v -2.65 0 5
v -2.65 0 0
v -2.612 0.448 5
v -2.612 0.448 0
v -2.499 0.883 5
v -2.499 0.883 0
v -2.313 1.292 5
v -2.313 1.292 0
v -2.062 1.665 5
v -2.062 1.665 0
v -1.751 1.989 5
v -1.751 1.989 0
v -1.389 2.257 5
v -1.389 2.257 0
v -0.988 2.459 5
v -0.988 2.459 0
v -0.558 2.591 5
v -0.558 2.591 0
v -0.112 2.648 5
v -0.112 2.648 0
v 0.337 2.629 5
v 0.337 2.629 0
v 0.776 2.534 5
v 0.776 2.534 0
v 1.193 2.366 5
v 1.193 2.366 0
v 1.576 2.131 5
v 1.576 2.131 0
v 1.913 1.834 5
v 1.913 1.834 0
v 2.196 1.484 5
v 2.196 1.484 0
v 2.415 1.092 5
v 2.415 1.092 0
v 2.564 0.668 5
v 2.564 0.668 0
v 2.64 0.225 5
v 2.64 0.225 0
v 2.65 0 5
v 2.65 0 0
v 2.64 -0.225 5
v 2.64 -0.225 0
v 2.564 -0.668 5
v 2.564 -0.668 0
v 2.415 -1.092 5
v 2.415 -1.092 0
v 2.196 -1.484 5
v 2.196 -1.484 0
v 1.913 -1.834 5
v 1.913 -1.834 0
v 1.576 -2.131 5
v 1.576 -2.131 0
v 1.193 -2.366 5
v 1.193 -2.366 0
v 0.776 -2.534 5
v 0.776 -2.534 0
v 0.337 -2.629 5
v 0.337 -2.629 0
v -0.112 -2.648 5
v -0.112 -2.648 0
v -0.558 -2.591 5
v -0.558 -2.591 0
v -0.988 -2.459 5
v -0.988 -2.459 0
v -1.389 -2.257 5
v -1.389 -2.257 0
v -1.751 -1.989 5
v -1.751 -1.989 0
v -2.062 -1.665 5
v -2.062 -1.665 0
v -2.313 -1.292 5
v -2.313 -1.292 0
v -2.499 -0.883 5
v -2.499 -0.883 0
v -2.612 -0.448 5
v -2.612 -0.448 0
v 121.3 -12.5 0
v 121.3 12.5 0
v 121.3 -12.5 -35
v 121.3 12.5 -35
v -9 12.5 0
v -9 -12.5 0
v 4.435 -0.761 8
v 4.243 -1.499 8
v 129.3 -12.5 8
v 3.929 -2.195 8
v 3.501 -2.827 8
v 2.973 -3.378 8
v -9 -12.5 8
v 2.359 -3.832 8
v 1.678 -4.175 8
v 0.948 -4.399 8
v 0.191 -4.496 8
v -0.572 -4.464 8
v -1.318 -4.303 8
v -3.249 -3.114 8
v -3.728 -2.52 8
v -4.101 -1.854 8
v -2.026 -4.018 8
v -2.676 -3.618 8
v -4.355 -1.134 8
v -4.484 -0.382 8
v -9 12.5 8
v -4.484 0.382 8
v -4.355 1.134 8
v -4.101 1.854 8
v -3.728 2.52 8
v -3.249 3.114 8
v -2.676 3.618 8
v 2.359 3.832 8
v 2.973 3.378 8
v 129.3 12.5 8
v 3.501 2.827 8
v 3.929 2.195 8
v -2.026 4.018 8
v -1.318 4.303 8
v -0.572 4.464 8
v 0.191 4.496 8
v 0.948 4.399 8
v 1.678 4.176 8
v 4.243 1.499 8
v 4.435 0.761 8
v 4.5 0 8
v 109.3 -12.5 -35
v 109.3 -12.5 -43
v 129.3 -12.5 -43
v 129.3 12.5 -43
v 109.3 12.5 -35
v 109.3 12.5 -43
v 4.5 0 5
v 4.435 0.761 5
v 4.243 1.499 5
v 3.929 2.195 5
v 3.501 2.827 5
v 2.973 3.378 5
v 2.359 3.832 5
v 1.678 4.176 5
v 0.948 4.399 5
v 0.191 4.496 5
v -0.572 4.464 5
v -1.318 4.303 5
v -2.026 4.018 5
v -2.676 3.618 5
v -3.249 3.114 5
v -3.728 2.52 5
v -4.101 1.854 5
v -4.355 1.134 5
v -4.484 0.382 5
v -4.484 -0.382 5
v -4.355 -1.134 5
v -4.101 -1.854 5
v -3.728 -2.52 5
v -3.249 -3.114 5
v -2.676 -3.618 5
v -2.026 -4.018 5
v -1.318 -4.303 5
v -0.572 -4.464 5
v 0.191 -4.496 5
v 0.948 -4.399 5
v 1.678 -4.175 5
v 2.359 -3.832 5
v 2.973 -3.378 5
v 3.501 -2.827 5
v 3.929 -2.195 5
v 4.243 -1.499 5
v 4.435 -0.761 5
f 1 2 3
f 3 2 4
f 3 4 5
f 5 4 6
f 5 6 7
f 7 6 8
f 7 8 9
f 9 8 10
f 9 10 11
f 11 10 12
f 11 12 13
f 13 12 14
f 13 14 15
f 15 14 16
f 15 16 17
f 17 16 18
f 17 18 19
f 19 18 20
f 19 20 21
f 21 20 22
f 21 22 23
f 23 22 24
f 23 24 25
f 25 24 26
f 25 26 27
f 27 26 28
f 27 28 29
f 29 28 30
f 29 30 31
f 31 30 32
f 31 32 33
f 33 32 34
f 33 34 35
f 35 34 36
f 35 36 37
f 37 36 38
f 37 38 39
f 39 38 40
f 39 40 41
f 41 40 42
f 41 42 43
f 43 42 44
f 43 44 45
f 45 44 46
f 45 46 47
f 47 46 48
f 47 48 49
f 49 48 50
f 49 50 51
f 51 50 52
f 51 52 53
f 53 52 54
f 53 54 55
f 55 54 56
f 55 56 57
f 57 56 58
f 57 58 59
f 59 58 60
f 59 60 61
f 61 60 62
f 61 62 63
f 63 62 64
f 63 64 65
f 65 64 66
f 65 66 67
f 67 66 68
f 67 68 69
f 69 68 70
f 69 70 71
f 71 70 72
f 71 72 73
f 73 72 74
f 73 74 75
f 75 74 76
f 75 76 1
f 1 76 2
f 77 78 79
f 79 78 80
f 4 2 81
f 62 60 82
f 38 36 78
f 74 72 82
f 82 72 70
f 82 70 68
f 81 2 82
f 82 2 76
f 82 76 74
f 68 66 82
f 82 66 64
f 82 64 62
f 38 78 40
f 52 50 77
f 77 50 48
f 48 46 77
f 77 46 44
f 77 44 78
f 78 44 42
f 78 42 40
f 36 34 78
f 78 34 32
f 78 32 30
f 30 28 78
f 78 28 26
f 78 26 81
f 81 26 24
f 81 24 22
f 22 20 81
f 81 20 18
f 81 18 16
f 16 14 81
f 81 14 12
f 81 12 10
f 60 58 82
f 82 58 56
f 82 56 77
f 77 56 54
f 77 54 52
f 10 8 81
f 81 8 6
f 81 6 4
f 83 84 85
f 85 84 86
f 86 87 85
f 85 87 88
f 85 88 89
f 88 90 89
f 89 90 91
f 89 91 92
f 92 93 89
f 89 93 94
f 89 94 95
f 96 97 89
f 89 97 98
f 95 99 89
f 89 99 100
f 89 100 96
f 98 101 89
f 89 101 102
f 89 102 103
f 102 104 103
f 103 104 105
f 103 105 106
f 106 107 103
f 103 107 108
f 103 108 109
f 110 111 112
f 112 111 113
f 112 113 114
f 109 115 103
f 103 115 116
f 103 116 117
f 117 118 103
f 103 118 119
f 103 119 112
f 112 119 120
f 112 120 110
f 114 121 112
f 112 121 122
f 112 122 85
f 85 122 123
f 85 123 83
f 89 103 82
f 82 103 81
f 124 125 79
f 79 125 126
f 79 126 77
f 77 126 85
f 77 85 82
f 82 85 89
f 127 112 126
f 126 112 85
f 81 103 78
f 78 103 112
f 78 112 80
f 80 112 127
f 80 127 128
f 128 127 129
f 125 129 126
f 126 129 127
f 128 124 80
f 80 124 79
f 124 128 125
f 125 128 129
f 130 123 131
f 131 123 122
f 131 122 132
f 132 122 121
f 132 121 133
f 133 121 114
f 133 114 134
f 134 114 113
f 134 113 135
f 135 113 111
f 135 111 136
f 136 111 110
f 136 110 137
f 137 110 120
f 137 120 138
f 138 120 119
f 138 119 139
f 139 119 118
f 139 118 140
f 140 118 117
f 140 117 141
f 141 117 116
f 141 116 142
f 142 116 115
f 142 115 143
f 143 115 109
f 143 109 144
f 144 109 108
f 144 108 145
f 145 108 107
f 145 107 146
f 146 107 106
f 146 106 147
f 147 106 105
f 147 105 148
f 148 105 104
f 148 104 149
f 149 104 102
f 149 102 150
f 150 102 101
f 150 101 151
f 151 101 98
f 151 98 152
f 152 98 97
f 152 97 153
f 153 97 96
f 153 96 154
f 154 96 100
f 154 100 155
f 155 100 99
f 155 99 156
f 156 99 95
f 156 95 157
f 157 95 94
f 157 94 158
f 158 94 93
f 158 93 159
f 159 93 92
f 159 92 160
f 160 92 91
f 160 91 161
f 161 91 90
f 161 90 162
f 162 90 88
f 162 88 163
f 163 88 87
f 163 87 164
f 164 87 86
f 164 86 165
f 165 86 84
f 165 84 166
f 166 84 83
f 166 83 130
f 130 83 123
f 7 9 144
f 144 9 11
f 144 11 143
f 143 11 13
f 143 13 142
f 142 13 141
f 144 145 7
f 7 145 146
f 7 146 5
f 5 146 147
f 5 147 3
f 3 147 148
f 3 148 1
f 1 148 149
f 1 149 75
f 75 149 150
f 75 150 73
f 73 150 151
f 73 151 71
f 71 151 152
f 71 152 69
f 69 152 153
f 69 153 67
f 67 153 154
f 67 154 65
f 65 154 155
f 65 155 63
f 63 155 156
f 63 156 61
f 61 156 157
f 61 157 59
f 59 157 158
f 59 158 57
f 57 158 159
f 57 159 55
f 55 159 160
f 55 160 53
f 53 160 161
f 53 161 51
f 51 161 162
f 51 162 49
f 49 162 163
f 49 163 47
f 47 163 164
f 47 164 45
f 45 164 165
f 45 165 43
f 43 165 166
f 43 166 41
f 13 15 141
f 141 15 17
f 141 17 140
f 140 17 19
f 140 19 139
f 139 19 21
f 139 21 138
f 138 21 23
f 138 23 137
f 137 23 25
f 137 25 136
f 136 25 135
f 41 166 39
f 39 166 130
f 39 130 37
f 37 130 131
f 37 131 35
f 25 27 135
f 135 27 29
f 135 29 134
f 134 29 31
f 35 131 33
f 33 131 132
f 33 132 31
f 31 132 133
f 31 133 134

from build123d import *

# Parameters (mm, degrees)
SKETCH_1_R          = 2.65
EXTRUDE_1_DEPTH     = 8
SKETCH_7_W          = 8
SKETCH_7_H          = 25
EXTRUDE_2_DEPTH     = 43
SKETCH_8_W          = 8
SKETCH_8_H          = 25
EXTRUDE_3_DEPTH     = 12
SKETCH_9_R          = 4.5
CUT_EXTRUDE_1_DEPTH = 3


with BuildPart() as part:
    # 草图1 → 凸台-拉伸1 (new body)
    with BuildSketch(Plane.XY):
        Polygon((-8, 12.5), (129.3, 12.5), (129.3, -12.5), (-8, -12.5), (-9, -12.5), (-9, 12.5), align=None)
        Circle(SKETCH_1_R, mode=Mode.SUBTRACT)
    extrude(amount=EXTRUDE_1_DEPTH)

    # 草图7 → 凸台-拉伸2 (add)
    with BuildSketch(Plane(origin=(0, 0, 0), x_dir=(-1, 0, 0), z_dir=(0, 0, -1))):
        with Locations((-125.3, 0)):
            Rectangle(SKETCH_7_W, SKETCH_7_H)
    extrude(amount=EXTRUDE_2_DEPTH)

    # 草图8 → 凸台-拉伸3 (add)
    with BuildSketch(Plane.ZY.offset(-121.3)):
        with Locations((-39, 0)):
            Rectangle(SKETCH_8_W, SKETCH_8_H)
    extrude(amount=EXTRUDE_3_DEPTH)

    # 草图9 → 切除-拉伸1 (cut)
    with BuildSketch(Plane.XY.offset(8)):
        Circle(SKETCH_9_R)
    extrude(amount=-CUT_EXTRUDE_1_DEPTH, mode=Mode.SUBTRACT)


solid = part.part
